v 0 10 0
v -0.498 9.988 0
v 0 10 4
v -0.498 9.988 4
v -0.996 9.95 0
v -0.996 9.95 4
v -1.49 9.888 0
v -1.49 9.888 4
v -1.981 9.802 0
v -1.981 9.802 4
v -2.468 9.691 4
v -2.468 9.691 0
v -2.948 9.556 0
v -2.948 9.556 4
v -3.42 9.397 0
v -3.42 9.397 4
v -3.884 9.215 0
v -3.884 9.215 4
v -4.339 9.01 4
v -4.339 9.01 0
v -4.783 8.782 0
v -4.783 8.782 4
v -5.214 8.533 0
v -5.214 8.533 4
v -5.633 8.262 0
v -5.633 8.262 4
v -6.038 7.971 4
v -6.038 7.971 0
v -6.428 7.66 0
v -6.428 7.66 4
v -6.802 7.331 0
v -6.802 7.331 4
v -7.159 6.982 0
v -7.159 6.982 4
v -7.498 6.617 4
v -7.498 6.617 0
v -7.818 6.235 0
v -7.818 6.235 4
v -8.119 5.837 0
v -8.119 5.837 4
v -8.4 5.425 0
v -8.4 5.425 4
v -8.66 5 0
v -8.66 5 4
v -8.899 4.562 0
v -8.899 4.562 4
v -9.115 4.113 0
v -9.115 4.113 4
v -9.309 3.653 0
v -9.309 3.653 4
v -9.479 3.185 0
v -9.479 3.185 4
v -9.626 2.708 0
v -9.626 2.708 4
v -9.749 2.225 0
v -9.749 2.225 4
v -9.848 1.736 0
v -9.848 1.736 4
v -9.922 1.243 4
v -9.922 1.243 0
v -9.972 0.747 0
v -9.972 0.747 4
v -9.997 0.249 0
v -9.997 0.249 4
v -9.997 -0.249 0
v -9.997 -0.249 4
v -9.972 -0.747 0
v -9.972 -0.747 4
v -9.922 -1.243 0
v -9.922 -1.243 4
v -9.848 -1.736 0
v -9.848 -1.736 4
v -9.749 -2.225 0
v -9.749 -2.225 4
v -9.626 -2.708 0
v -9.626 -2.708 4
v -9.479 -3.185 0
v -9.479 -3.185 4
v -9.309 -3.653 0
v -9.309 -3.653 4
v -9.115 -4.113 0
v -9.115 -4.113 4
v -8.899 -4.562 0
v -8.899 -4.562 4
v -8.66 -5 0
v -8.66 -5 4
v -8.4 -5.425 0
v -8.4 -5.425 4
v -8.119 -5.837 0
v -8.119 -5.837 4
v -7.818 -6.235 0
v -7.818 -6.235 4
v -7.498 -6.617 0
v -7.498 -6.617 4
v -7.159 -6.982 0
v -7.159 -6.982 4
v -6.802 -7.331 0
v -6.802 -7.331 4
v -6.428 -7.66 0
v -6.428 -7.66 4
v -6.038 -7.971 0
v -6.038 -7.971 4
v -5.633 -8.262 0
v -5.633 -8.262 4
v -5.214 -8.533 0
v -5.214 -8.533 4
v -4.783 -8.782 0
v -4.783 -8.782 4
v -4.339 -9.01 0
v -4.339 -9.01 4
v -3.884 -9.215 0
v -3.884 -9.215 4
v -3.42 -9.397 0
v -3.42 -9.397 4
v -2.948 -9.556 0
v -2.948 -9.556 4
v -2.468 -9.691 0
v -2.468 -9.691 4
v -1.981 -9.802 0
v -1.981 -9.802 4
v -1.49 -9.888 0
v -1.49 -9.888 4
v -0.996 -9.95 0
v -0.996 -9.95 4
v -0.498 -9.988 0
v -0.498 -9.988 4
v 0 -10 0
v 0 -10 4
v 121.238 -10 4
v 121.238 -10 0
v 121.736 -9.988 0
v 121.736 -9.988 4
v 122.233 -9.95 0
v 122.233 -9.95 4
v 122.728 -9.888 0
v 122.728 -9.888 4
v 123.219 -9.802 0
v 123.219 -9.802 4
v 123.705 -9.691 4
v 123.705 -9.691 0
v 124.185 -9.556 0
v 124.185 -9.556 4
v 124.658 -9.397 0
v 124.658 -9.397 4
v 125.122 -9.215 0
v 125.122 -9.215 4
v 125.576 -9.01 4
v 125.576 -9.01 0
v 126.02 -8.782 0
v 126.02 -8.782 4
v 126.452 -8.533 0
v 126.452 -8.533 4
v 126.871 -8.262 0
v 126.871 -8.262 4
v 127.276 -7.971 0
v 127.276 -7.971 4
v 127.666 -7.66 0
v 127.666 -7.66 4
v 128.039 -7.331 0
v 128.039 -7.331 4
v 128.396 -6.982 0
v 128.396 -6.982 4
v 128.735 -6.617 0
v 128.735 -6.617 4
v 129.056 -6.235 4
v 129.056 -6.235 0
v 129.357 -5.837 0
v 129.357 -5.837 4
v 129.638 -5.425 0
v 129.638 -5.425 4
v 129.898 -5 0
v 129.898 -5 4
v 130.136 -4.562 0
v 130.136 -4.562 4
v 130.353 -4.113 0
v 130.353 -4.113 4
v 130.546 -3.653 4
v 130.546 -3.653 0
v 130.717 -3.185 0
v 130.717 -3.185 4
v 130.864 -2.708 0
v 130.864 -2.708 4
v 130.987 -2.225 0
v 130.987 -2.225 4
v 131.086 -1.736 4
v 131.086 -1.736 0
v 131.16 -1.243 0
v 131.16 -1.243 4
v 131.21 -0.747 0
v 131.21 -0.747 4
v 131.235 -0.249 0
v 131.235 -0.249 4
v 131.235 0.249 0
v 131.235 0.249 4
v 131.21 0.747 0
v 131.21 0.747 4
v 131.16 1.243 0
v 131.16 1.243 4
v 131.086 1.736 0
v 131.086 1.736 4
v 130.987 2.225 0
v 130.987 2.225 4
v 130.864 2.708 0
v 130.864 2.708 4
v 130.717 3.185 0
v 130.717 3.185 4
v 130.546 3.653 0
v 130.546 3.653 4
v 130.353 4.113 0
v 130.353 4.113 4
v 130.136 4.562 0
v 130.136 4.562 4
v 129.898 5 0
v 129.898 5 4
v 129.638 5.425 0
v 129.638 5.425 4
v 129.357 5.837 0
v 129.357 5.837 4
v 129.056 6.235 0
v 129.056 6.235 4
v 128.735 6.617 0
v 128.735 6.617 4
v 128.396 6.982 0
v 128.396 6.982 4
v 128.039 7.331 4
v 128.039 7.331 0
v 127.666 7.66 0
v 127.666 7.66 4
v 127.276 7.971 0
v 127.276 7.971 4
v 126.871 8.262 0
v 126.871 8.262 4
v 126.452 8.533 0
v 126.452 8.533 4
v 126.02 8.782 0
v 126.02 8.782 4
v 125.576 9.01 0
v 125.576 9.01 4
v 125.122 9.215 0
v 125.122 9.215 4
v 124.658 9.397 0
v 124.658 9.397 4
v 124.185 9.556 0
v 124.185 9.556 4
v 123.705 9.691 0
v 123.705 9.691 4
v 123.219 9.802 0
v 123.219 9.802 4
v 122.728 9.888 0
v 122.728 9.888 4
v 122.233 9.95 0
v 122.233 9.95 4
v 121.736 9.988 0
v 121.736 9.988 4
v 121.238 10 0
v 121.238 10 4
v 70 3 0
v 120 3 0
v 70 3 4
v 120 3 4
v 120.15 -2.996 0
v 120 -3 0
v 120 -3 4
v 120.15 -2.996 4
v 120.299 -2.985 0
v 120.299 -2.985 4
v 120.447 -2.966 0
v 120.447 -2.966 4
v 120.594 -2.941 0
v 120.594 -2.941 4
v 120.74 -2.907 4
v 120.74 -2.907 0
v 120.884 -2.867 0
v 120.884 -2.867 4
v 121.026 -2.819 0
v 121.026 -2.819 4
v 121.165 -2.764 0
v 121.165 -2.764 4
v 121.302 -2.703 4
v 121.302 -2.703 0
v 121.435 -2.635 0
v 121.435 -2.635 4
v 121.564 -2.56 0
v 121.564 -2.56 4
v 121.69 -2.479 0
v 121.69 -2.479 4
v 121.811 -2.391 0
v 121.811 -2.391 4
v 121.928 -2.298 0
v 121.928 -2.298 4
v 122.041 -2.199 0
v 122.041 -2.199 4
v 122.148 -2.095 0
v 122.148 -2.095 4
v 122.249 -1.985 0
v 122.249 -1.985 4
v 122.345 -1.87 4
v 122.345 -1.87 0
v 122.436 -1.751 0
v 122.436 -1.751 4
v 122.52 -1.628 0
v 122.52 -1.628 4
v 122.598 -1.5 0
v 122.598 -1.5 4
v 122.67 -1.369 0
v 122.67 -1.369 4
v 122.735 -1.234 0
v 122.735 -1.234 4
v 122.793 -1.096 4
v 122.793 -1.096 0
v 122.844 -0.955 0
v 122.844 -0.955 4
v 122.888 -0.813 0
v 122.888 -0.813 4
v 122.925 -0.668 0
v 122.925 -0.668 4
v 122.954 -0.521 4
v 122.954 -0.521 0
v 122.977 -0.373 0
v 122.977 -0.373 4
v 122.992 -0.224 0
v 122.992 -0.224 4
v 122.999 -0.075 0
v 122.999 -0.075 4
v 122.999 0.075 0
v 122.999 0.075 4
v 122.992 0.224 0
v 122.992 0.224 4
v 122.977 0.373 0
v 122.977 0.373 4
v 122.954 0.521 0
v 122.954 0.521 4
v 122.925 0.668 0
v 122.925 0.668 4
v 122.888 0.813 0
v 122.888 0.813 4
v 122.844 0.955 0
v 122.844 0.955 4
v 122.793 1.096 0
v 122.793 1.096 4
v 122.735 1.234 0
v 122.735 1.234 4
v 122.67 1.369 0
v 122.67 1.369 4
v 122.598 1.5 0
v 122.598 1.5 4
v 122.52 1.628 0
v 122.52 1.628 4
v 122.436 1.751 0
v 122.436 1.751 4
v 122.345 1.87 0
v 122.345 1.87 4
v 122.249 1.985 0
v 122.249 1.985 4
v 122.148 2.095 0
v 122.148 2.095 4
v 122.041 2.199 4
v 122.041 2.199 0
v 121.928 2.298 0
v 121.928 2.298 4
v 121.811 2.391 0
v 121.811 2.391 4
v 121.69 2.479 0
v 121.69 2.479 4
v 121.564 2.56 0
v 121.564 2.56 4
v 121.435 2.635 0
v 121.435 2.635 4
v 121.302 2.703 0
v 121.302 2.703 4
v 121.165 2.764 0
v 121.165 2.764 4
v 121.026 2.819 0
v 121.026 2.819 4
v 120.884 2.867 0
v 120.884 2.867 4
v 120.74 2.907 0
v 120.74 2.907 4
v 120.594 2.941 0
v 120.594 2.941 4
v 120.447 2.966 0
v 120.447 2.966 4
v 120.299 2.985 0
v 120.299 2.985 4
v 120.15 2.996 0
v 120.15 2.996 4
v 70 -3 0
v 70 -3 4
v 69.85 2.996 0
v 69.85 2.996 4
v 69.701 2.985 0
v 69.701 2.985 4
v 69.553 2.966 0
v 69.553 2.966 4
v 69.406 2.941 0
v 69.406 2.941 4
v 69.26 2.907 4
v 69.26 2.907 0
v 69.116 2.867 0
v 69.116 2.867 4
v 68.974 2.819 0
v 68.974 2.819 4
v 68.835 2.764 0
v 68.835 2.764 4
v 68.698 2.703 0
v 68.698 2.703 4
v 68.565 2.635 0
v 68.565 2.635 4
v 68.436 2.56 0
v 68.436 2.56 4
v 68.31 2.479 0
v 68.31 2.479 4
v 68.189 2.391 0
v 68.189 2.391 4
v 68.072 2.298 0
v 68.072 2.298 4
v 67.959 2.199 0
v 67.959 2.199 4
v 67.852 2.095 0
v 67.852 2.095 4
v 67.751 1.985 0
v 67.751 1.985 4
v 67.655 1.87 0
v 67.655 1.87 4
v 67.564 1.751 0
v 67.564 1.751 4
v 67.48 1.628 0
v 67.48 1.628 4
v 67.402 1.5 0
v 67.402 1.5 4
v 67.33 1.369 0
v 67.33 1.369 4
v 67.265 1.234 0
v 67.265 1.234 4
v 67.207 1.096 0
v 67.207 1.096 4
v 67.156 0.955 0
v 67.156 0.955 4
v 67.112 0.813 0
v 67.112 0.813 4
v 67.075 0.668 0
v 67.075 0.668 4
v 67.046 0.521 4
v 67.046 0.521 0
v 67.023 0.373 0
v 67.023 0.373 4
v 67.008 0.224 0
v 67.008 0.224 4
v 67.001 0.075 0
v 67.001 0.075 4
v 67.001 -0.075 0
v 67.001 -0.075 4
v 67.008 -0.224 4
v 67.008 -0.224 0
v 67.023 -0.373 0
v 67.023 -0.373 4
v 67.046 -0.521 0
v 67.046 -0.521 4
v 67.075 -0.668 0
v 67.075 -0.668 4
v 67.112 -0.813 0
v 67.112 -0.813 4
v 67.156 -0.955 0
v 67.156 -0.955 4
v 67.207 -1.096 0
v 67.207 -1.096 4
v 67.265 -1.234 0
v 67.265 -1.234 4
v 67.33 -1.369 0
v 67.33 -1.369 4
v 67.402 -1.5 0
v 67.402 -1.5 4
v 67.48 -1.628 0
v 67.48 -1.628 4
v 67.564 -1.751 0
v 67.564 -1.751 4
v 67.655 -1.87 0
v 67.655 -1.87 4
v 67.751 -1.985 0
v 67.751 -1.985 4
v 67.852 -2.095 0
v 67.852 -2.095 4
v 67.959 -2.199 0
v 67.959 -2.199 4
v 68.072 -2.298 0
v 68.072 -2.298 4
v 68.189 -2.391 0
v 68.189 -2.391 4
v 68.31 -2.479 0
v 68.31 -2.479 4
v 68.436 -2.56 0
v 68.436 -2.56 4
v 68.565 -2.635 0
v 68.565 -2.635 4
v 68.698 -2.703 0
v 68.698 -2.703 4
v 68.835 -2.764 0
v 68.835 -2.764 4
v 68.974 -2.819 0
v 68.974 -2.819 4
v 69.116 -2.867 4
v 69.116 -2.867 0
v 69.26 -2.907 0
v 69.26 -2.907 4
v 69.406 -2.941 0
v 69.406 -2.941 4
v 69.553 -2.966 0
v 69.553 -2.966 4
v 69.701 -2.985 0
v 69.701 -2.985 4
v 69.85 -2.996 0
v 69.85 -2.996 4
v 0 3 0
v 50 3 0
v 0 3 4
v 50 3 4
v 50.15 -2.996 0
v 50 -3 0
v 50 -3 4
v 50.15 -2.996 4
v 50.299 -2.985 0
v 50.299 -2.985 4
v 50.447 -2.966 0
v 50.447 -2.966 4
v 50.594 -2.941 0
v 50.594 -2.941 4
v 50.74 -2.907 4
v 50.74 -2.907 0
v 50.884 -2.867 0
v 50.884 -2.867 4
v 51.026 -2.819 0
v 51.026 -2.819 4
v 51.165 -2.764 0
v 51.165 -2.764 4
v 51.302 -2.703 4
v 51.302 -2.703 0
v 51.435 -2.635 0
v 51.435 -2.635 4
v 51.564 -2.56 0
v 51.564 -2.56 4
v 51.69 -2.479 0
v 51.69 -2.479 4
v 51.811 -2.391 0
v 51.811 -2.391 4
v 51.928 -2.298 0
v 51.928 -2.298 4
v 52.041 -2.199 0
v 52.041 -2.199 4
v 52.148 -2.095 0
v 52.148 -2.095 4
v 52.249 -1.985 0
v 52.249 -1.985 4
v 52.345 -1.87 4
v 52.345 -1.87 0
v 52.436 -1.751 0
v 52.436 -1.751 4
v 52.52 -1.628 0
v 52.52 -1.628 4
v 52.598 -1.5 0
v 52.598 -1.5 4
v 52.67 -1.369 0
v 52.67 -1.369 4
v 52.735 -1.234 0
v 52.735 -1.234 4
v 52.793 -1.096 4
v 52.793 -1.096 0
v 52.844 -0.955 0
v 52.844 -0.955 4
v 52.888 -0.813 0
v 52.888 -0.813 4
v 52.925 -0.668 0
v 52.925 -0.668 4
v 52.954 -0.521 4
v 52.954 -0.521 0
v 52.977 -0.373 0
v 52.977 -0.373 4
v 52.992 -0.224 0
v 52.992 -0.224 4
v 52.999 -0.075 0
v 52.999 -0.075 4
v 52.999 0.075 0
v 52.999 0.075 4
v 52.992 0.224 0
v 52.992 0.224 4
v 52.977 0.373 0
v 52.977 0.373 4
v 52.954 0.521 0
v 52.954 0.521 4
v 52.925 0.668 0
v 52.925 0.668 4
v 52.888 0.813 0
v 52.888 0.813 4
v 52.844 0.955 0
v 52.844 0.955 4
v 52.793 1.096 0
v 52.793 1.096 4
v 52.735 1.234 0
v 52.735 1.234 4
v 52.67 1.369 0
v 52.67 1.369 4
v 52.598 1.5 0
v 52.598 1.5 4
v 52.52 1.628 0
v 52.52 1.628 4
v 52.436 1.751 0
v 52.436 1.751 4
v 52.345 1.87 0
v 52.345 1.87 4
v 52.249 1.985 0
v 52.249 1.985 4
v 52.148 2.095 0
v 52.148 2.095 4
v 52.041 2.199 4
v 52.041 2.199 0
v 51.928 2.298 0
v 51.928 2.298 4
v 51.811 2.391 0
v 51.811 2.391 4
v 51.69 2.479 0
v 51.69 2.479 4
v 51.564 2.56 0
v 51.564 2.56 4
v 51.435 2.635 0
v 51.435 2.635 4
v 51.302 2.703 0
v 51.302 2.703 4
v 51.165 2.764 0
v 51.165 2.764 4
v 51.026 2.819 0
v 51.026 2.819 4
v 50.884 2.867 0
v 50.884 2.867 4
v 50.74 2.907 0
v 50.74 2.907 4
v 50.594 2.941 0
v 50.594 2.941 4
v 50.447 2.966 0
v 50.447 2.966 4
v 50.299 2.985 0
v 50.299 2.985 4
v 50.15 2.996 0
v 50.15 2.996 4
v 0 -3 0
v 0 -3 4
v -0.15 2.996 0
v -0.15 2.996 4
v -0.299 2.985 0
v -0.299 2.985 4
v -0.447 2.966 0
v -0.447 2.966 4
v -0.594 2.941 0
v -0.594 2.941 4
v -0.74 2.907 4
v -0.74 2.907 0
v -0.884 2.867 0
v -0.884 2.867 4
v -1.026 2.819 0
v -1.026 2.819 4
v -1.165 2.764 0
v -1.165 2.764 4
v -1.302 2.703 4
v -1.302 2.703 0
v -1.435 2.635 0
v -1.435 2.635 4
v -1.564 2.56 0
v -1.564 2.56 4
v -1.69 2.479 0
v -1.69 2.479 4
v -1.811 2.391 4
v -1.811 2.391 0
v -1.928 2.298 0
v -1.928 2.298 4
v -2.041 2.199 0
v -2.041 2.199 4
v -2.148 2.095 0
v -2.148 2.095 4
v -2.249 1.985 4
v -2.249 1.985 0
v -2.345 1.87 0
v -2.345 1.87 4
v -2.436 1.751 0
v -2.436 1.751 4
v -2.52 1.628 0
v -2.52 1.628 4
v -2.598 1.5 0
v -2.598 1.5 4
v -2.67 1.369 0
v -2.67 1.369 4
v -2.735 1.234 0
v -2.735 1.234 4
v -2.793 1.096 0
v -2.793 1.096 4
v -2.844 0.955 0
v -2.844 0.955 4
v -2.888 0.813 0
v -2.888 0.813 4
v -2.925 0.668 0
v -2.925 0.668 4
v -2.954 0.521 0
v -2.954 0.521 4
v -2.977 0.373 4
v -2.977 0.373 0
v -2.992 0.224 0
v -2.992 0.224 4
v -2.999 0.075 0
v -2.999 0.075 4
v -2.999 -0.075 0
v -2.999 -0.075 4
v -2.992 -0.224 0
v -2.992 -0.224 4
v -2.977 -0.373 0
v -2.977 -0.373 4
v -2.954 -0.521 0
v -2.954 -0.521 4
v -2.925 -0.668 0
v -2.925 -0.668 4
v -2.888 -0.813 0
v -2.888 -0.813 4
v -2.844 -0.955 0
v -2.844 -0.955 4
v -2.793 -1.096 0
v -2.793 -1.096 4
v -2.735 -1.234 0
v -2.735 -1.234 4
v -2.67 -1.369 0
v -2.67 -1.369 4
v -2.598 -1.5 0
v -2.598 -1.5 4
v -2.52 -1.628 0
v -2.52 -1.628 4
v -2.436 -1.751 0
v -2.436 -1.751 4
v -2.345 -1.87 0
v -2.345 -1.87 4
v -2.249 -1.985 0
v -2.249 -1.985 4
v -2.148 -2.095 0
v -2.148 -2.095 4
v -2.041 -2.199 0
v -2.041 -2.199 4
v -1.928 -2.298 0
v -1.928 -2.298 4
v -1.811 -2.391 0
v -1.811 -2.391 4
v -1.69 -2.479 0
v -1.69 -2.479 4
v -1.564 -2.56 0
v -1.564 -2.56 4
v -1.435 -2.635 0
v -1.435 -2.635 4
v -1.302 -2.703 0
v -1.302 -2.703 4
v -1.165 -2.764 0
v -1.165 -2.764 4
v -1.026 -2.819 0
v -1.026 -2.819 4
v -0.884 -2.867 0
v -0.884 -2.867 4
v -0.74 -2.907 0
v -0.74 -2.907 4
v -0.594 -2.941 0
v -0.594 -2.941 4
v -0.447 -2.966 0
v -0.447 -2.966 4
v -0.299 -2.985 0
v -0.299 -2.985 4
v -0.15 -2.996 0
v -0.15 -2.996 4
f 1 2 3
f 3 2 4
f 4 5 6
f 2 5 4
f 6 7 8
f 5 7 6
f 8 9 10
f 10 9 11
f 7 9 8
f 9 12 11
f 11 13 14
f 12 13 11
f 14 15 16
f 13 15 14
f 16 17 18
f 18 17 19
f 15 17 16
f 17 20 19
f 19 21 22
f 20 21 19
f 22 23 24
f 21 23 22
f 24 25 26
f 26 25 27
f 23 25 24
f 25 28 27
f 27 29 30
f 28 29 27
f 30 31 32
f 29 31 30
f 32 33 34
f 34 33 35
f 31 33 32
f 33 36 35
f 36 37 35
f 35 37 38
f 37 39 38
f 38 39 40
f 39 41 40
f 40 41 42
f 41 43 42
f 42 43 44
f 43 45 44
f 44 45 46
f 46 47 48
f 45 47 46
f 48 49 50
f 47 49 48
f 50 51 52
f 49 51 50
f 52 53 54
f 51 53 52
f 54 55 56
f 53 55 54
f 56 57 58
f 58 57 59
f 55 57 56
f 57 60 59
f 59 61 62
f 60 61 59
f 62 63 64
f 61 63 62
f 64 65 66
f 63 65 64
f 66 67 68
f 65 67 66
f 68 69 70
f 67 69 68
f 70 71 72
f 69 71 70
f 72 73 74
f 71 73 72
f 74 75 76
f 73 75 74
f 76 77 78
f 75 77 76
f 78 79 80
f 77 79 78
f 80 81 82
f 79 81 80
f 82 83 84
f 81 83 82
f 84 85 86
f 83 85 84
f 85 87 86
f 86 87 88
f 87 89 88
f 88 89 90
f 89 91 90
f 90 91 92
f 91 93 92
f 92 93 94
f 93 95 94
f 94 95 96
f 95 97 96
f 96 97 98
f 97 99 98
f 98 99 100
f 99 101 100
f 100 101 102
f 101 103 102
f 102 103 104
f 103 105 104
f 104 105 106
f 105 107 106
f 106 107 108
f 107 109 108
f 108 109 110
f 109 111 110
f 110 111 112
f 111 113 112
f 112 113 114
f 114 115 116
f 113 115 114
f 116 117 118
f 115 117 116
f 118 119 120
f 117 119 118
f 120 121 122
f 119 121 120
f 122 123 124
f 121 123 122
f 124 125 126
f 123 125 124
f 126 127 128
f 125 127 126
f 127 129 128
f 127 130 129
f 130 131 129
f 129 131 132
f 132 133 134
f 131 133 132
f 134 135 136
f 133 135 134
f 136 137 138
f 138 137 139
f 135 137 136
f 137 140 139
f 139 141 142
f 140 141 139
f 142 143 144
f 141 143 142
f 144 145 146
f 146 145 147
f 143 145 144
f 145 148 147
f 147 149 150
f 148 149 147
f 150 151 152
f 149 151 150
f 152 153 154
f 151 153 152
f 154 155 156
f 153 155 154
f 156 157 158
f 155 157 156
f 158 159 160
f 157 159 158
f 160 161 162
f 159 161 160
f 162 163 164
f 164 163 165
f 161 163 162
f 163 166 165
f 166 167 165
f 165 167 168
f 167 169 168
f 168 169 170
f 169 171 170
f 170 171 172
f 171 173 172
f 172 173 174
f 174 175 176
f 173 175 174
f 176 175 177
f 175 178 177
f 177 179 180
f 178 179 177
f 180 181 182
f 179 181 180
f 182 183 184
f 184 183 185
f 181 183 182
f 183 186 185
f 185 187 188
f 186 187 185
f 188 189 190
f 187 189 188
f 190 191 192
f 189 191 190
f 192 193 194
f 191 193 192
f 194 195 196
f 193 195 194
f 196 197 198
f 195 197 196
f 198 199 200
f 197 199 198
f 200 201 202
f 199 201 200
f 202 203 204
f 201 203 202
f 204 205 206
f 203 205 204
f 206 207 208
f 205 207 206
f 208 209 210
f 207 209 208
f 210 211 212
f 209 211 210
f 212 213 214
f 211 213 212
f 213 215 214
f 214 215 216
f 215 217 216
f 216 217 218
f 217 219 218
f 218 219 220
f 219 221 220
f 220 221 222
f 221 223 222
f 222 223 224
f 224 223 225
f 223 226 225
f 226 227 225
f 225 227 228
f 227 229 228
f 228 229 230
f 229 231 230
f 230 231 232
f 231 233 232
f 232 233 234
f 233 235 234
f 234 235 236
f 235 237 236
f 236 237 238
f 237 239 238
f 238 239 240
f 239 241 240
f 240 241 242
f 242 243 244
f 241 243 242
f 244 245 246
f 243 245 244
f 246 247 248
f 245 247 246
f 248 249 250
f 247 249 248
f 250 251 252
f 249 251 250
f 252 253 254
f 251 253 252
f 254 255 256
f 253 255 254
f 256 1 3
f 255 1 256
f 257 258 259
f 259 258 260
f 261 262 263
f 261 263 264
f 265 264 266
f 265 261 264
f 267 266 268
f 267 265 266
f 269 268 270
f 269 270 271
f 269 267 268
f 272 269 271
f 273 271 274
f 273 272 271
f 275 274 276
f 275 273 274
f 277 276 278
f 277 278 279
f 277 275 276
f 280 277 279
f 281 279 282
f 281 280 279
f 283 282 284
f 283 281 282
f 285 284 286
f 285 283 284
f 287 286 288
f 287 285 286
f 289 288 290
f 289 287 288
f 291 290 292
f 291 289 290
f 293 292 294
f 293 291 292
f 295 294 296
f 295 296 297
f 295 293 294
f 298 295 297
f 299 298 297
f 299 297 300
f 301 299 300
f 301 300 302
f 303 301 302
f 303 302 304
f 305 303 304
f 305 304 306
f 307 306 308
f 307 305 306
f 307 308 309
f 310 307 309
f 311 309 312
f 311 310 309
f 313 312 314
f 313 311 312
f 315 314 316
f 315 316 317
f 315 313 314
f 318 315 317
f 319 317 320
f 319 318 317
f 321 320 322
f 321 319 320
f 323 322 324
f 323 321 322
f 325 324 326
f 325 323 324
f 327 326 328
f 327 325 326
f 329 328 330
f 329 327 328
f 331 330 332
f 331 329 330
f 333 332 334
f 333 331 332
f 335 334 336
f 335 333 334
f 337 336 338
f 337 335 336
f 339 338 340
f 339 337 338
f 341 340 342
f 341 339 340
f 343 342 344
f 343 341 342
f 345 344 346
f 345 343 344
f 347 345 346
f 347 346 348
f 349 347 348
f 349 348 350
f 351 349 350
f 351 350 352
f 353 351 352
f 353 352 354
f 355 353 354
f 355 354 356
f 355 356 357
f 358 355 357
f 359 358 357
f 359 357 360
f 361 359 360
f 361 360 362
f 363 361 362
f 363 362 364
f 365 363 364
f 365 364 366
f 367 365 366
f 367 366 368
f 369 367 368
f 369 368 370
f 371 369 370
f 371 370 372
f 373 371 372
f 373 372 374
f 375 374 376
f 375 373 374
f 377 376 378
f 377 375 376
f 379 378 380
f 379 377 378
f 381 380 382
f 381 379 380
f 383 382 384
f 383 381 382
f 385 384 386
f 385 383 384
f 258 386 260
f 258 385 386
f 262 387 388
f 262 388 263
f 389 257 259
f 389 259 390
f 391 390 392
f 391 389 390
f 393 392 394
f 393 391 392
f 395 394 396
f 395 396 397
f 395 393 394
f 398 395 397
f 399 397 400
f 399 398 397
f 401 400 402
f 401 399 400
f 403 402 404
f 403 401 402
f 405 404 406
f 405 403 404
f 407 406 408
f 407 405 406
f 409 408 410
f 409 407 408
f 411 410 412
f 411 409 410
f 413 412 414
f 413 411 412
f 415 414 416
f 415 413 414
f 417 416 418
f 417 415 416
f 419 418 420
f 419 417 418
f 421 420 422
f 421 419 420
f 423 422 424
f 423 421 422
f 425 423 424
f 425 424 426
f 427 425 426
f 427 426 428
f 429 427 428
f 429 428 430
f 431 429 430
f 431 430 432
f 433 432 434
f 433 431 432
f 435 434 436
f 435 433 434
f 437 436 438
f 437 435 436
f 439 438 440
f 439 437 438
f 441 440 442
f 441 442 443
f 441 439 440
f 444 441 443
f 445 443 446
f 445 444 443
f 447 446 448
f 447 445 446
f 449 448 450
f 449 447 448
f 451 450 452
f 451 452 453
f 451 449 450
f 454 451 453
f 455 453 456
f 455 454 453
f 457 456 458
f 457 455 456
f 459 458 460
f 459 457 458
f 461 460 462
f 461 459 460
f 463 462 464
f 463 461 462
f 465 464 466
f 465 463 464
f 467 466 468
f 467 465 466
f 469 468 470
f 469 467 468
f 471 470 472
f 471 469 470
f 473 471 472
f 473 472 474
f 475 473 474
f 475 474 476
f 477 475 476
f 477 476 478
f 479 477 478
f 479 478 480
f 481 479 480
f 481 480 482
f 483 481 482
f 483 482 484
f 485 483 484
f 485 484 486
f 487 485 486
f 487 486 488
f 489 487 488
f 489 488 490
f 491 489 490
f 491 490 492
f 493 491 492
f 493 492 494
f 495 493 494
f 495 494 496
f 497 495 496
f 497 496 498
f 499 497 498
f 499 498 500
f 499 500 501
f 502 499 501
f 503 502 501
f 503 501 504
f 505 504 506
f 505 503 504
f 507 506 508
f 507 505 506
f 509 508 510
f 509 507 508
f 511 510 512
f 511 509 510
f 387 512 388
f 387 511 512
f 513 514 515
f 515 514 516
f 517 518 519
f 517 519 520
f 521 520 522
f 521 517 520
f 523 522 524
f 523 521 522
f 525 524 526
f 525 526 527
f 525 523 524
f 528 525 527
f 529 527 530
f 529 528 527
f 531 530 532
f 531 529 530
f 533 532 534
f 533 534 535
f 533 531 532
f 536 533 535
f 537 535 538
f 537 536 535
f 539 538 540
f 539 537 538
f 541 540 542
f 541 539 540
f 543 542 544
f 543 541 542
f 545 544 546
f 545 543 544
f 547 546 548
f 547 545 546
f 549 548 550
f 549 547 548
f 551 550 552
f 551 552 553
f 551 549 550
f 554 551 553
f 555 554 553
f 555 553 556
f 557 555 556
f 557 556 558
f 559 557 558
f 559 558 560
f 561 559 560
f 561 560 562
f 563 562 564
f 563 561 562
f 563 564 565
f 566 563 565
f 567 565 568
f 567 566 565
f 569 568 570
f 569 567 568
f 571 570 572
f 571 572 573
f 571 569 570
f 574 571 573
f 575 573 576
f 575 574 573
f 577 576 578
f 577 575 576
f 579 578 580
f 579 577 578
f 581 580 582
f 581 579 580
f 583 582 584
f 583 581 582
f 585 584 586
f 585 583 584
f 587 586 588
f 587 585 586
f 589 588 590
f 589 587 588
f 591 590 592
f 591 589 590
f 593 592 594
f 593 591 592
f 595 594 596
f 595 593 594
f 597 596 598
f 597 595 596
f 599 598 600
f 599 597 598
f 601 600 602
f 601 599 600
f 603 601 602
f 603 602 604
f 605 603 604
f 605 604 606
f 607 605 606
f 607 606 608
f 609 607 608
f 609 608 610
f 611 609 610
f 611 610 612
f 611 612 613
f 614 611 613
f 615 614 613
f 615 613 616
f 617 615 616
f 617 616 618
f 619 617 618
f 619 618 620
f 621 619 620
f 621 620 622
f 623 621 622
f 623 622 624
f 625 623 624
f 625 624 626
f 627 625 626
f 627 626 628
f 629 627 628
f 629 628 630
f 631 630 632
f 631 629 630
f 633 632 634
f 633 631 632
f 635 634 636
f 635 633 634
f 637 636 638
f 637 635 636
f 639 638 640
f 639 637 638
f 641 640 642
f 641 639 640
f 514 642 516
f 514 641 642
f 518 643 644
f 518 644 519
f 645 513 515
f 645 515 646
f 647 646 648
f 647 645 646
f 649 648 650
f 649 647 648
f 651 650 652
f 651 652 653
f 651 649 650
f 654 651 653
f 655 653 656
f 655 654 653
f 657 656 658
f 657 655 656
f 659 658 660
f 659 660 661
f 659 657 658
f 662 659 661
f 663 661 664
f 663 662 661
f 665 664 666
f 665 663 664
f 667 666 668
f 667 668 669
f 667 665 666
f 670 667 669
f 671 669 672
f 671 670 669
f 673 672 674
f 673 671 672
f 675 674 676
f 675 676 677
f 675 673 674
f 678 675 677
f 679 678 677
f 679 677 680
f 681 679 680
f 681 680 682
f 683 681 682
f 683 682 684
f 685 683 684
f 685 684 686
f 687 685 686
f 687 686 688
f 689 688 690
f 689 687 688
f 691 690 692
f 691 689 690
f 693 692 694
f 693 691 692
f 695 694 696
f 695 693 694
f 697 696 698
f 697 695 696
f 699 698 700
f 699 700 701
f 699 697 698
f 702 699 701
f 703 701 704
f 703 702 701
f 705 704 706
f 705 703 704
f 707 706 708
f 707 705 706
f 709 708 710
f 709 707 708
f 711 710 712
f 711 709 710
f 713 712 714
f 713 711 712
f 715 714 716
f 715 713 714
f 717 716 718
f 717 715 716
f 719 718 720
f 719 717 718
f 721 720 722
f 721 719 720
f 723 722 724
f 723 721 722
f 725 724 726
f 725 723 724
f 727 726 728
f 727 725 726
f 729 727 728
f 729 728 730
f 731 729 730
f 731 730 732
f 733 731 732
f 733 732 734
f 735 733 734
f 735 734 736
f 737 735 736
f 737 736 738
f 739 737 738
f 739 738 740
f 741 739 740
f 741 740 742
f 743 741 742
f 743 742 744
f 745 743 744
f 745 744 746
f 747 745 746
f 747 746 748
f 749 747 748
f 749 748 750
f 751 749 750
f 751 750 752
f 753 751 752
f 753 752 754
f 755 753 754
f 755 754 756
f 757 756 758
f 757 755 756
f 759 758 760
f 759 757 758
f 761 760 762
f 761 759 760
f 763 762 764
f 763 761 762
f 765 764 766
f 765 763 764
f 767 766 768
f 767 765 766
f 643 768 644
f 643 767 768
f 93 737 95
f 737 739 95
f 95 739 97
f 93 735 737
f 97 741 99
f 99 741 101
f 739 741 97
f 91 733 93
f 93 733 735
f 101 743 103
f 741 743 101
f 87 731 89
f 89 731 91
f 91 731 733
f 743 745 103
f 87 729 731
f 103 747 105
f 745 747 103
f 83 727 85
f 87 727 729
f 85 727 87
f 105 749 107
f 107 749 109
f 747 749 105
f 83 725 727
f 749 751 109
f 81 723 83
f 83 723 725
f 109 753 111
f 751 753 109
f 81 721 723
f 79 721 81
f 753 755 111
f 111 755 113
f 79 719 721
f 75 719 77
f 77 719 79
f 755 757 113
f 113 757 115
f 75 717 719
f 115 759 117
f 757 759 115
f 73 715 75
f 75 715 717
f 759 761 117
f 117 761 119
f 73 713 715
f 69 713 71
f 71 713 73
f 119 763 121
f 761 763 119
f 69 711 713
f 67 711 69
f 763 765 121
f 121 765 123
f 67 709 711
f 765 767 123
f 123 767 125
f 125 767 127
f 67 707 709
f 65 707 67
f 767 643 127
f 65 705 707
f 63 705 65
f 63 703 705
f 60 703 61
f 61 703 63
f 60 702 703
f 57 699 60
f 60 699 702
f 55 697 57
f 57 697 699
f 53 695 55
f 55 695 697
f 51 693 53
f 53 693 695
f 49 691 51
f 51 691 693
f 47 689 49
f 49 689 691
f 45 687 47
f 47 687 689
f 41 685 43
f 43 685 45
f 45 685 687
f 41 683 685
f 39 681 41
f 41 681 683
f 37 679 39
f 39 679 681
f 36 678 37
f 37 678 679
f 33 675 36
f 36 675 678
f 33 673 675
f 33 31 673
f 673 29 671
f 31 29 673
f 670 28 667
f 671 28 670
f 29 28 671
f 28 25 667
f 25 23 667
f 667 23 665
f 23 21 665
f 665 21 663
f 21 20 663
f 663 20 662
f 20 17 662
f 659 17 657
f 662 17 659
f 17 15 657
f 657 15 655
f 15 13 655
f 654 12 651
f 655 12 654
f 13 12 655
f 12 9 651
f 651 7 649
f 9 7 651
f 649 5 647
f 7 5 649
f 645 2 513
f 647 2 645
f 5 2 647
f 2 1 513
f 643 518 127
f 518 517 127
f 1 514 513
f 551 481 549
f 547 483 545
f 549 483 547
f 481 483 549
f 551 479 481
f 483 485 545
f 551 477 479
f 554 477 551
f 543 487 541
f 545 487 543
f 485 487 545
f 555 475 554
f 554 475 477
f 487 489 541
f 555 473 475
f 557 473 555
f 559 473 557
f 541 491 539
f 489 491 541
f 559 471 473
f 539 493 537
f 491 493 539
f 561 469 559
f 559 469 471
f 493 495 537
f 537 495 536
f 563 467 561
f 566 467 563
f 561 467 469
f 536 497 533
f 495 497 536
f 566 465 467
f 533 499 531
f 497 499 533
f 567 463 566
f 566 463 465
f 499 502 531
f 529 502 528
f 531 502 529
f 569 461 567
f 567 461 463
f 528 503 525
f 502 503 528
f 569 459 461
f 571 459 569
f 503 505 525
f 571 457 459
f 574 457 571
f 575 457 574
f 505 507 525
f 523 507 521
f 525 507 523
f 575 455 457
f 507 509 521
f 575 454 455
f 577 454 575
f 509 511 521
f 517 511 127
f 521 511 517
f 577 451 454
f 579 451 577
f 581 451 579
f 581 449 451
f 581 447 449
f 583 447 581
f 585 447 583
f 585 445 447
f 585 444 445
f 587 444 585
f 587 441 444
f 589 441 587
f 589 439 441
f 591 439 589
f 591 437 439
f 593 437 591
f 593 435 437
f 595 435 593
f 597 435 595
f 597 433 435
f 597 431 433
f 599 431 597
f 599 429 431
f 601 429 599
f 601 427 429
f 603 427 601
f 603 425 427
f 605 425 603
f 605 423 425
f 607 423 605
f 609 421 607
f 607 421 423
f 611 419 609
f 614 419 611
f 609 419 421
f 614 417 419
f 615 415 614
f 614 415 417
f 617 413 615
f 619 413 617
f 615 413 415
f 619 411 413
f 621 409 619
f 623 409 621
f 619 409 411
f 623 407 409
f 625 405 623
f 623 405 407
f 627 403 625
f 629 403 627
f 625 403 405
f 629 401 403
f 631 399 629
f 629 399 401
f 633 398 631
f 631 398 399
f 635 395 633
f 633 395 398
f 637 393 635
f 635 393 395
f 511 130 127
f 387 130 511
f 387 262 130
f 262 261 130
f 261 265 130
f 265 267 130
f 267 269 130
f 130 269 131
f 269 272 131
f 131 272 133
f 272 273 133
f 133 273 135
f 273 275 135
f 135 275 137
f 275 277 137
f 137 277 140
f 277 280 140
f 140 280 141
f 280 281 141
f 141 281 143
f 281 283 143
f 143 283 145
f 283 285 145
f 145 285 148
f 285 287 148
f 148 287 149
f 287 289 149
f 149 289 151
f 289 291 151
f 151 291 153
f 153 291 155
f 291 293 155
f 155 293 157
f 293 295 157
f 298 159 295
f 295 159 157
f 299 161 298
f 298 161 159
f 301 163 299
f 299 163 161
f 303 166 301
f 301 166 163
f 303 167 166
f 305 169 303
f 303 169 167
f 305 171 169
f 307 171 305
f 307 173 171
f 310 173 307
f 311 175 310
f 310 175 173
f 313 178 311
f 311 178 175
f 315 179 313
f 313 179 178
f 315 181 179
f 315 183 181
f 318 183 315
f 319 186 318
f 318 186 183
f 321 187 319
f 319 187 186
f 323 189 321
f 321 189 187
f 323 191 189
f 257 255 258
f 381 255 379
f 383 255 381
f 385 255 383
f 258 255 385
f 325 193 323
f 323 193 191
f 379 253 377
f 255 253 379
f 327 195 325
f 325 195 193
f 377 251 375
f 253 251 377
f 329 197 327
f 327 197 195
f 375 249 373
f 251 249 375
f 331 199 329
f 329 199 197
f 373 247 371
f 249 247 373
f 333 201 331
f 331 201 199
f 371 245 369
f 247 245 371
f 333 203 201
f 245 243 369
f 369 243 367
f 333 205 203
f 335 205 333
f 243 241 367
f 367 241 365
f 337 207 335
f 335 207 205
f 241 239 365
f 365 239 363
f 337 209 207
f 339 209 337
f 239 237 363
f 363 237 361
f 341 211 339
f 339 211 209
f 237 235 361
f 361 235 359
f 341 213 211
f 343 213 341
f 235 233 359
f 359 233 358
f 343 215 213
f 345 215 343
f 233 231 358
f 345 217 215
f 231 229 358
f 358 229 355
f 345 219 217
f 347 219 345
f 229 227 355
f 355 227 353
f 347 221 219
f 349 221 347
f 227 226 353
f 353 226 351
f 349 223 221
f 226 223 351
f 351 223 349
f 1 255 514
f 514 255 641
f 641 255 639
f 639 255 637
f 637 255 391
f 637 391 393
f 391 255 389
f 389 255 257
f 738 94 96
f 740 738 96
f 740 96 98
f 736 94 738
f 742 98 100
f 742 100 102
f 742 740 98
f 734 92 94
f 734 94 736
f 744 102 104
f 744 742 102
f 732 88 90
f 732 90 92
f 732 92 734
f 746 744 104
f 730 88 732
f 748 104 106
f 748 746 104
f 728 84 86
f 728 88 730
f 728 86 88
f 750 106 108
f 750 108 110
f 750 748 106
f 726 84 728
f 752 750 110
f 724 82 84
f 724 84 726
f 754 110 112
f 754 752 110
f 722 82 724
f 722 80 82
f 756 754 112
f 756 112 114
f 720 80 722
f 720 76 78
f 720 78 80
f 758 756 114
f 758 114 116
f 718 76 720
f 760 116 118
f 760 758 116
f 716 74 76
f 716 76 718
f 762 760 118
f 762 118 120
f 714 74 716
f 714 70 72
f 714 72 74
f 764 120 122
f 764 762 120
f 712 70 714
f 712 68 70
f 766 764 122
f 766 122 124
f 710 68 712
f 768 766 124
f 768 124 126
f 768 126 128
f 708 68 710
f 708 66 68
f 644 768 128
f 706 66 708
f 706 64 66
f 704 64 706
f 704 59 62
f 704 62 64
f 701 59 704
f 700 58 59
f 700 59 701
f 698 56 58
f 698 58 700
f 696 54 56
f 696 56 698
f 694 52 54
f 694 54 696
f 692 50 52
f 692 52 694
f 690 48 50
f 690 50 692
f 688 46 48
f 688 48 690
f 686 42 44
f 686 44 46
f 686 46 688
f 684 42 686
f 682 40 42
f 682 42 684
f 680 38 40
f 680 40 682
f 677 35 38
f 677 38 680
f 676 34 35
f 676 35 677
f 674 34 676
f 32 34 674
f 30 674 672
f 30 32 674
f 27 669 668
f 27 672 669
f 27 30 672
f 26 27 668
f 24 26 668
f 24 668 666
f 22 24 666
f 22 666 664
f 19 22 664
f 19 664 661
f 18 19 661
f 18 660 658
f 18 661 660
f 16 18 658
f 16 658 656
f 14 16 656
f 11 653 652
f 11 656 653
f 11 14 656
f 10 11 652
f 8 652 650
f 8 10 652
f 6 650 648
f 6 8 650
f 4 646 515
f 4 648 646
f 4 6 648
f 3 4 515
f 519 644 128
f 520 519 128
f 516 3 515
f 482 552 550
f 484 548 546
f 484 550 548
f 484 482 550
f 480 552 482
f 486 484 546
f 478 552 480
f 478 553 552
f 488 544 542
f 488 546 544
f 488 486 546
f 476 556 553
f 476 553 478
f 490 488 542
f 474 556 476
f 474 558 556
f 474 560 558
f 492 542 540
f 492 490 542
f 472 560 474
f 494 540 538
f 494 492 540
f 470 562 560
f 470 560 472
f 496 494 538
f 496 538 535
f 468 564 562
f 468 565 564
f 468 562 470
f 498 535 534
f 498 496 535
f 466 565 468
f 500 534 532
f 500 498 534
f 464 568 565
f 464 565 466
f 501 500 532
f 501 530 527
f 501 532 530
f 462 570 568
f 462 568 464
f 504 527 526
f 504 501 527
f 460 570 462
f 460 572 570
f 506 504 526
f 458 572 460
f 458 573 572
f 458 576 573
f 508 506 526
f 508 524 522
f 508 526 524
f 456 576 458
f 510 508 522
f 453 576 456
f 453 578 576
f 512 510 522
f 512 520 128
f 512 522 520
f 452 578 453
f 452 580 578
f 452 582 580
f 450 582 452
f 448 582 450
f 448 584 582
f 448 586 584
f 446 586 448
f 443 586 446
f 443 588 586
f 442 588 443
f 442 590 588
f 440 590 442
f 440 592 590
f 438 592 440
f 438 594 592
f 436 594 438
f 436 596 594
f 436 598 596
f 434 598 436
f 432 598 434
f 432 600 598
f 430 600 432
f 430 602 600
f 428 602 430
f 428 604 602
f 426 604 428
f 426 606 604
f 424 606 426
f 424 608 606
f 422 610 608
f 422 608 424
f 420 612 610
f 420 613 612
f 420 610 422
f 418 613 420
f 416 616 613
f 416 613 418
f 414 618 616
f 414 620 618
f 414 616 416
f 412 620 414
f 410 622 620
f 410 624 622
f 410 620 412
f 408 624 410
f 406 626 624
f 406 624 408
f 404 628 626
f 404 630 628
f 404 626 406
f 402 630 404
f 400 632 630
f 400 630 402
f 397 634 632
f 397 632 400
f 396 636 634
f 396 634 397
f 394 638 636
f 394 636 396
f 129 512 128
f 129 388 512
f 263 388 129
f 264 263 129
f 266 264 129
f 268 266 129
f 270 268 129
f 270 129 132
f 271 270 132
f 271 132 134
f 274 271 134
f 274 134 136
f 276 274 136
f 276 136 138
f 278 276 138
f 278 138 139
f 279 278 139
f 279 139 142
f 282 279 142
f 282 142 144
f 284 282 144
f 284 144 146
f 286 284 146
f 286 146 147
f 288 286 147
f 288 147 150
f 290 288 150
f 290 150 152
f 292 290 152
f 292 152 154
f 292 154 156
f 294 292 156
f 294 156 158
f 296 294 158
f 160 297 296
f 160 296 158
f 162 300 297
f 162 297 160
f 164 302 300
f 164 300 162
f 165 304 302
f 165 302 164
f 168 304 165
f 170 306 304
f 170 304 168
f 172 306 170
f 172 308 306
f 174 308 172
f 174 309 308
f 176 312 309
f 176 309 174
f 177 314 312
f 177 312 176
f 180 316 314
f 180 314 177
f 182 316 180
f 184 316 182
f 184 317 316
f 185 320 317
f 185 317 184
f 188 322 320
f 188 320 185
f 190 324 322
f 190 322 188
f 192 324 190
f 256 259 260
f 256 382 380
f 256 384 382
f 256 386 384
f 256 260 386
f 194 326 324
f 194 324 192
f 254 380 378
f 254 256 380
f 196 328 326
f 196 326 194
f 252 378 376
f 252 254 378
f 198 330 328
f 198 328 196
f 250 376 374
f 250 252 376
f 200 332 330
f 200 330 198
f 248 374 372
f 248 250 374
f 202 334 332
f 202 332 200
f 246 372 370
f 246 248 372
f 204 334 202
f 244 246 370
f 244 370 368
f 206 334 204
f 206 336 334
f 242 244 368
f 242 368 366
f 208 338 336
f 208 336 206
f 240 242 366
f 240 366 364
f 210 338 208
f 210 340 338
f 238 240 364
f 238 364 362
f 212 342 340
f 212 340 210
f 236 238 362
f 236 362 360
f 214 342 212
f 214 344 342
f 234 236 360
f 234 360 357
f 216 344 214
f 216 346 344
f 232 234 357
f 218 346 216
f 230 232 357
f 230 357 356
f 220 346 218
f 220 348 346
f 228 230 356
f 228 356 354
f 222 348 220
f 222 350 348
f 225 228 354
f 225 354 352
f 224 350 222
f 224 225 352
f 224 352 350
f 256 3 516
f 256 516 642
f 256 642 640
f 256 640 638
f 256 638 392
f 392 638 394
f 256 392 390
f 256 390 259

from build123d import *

# Parameters (mm, degrees)
PAD_DEPTH = 4


with BuildPart() as part:
    # Sketch → Pad (new body)
    with BuildSketch(Plane.XY):
        with BuildLine():
            ThreePointArc((0, 10), (-10, 0), (0, -10))
            Line((0, -10), (121.237625, -10))
            ThreePointArc((121.237625, -10), (131.237625, 0), (121.237625, 10))
            Line((0, 10), (121.237625, 10))
        make_face()
        with BuildLine():
            ThreePointArc((0, 3), (-3, 0), (0, -3))
            Line((0, -3), (50, -3))
            ThreePointArc((50, -3), (53, 0), (50, 3))
            Line((0, 3), (50, 3))
        make_face(mode=Mode.SUBTRACT)
        with BuildLine():
            ThreePointArc((70, 3), (67, 0), (70, -3))
            Line((70, -3), (120, -3))
            ThreePointArc((120, -3), (123, 0), (120, 3))
            Line((70, 3), (120, 3))
        make_face(mode=Mode.SUBTRACT)
    extrude(amount=PAD_DEPTH)


solid = part.part
